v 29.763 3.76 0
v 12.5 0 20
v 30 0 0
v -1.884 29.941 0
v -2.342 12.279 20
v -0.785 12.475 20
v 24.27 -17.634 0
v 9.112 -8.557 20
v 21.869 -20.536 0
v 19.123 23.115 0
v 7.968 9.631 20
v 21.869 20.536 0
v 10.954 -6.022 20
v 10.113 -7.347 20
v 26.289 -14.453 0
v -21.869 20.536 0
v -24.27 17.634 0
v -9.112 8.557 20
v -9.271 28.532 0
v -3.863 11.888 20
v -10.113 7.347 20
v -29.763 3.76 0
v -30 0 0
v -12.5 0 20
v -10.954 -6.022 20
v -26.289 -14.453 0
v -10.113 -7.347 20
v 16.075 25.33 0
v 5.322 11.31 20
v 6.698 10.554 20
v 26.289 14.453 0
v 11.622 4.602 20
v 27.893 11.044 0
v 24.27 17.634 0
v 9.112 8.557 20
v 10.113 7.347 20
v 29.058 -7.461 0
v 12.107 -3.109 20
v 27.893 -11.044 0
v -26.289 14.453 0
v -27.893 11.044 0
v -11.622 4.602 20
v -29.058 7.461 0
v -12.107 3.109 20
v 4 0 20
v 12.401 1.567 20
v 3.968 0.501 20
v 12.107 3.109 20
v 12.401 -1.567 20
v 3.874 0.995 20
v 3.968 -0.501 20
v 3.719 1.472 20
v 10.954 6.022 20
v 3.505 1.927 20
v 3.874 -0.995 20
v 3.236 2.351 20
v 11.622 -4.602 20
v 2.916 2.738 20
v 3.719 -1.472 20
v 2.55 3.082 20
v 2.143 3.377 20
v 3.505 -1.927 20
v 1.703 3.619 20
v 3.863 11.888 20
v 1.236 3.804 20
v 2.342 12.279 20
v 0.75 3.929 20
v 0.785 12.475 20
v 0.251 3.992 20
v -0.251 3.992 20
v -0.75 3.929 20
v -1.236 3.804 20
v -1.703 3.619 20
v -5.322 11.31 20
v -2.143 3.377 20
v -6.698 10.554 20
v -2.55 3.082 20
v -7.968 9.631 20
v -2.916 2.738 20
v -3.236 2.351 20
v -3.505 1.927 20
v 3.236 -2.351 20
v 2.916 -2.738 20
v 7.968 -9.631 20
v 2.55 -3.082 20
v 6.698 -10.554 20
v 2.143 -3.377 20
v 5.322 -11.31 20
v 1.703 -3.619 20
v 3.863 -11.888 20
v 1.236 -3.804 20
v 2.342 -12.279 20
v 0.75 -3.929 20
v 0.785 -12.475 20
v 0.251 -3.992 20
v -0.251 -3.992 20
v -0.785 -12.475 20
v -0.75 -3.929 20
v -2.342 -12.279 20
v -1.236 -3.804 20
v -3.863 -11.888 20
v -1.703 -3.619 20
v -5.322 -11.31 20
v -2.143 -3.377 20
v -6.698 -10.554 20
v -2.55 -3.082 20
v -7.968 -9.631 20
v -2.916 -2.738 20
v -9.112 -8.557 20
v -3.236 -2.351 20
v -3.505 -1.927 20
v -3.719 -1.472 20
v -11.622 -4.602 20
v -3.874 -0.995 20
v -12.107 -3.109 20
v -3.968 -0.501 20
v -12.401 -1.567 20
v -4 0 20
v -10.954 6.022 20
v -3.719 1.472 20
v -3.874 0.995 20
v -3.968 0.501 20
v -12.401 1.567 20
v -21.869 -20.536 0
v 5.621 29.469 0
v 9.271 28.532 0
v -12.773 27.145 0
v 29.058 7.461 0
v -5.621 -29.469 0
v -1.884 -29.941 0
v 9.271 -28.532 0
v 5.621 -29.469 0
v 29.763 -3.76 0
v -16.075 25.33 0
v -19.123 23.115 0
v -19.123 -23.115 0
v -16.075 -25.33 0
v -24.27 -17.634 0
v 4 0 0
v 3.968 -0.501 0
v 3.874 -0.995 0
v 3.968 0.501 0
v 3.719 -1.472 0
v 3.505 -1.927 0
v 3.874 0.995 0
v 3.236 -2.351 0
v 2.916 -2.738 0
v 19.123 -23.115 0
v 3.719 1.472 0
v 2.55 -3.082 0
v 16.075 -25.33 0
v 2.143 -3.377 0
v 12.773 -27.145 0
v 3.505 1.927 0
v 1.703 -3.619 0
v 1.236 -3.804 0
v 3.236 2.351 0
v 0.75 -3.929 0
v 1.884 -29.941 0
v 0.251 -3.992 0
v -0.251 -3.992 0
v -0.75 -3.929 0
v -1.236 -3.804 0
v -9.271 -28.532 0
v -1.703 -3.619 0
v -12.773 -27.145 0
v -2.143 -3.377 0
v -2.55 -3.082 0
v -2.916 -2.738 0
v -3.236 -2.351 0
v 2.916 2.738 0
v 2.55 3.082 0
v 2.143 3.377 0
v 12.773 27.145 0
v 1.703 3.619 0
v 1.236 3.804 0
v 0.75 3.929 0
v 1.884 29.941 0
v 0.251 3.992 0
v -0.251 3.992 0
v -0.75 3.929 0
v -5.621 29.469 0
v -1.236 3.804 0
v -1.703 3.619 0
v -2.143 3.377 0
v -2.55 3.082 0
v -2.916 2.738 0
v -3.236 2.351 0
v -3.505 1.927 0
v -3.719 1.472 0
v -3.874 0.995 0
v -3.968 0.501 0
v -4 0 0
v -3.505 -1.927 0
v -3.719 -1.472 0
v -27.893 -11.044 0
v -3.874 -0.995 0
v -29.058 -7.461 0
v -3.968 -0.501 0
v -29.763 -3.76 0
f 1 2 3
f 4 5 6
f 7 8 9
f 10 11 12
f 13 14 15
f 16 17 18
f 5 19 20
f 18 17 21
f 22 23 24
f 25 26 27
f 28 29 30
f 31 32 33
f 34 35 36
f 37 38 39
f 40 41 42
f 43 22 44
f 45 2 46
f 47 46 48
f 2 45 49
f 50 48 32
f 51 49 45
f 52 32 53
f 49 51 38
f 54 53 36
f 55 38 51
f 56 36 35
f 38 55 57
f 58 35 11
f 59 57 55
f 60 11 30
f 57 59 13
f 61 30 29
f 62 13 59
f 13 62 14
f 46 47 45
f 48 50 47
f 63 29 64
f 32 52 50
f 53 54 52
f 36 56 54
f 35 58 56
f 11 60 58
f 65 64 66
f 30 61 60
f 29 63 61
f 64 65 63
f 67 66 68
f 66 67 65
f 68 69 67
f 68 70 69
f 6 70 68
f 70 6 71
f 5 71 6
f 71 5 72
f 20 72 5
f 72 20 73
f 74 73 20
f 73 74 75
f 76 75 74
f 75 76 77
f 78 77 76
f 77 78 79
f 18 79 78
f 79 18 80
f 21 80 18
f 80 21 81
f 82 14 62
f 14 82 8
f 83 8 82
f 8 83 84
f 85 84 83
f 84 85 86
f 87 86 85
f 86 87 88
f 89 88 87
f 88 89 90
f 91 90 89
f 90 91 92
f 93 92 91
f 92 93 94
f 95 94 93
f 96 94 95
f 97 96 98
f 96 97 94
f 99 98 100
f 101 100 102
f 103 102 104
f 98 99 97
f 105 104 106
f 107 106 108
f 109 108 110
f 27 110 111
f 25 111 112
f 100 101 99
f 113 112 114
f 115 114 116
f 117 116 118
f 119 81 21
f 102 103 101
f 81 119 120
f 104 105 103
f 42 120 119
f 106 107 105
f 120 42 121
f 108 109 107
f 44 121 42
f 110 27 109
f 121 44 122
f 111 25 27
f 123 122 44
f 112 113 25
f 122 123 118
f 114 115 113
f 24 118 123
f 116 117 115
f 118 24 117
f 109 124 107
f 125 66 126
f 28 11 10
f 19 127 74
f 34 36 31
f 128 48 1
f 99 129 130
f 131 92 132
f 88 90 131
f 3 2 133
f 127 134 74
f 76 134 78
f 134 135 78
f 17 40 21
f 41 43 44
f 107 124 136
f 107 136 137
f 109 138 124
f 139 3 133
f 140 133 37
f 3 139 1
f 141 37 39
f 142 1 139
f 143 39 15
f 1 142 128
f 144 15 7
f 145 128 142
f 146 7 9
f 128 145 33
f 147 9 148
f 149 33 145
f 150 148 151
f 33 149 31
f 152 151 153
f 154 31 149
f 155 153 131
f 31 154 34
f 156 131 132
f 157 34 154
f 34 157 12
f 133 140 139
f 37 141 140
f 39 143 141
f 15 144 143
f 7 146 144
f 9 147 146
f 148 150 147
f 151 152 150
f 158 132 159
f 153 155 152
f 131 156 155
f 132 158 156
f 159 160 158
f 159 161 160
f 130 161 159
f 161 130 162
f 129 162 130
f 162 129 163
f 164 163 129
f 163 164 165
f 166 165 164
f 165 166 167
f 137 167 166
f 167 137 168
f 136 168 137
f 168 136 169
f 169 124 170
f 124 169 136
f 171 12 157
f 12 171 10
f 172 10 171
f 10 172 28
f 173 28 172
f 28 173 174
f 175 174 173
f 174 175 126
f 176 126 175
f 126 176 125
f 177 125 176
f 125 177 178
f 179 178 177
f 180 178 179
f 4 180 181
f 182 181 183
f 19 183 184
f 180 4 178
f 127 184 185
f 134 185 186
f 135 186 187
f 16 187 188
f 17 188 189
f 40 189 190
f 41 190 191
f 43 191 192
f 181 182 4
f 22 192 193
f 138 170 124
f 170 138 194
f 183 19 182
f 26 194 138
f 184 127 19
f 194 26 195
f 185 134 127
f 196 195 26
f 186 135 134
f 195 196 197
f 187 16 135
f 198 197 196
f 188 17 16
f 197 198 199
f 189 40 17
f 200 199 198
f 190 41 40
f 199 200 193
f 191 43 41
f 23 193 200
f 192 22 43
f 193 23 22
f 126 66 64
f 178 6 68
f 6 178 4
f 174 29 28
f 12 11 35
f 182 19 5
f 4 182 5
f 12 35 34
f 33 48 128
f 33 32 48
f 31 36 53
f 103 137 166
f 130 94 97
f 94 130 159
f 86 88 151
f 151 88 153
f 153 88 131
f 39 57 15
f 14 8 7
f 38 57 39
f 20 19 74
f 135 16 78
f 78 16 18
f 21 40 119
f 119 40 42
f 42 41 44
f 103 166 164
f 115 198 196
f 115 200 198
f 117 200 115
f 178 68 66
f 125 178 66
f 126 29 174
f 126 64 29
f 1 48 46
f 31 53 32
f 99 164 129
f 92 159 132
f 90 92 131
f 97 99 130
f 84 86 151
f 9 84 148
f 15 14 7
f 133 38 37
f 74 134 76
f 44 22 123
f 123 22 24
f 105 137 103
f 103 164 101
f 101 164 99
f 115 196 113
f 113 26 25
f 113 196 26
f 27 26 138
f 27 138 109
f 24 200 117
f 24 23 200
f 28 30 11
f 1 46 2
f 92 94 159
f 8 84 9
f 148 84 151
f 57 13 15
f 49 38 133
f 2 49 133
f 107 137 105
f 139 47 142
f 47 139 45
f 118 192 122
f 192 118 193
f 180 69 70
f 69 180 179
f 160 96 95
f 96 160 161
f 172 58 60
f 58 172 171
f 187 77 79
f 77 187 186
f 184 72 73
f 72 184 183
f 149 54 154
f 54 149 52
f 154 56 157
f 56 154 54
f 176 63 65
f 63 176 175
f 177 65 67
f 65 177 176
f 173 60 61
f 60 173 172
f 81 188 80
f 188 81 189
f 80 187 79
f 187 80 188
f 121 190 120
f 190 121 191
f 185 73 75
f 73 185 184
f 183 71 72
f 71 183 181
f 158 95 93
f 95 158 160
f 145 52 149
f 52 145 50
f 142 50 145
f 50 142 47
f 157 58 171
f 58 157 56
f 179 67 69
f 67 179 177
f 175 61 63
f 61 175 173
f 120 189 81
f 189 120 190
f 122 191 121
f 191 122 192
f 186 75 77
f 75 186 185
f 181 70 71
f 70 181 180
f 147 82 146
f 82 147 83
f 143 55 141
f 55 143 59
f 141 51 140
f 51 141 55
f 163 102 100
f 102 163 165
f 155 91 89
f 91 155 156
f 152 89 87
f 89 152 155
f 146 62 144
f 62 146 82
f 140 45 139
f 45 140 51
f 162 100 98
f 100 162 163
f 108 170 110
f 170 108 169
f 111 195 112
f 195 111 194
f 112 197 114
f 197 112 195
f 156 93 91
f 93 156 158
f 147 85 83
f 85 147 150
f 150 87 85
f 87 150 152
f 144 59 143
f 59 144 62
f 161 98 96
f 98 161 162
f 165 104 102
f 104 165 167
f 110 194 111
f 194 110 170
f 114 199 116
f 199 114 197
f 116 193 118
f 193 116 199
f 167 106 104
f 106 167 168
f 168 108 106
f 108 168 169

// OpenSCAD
difference(){
    cylinder(d1=60, d2=25, h=20, $fn=50);
    cylinder(d=8, h=25, $fn=50);
}
